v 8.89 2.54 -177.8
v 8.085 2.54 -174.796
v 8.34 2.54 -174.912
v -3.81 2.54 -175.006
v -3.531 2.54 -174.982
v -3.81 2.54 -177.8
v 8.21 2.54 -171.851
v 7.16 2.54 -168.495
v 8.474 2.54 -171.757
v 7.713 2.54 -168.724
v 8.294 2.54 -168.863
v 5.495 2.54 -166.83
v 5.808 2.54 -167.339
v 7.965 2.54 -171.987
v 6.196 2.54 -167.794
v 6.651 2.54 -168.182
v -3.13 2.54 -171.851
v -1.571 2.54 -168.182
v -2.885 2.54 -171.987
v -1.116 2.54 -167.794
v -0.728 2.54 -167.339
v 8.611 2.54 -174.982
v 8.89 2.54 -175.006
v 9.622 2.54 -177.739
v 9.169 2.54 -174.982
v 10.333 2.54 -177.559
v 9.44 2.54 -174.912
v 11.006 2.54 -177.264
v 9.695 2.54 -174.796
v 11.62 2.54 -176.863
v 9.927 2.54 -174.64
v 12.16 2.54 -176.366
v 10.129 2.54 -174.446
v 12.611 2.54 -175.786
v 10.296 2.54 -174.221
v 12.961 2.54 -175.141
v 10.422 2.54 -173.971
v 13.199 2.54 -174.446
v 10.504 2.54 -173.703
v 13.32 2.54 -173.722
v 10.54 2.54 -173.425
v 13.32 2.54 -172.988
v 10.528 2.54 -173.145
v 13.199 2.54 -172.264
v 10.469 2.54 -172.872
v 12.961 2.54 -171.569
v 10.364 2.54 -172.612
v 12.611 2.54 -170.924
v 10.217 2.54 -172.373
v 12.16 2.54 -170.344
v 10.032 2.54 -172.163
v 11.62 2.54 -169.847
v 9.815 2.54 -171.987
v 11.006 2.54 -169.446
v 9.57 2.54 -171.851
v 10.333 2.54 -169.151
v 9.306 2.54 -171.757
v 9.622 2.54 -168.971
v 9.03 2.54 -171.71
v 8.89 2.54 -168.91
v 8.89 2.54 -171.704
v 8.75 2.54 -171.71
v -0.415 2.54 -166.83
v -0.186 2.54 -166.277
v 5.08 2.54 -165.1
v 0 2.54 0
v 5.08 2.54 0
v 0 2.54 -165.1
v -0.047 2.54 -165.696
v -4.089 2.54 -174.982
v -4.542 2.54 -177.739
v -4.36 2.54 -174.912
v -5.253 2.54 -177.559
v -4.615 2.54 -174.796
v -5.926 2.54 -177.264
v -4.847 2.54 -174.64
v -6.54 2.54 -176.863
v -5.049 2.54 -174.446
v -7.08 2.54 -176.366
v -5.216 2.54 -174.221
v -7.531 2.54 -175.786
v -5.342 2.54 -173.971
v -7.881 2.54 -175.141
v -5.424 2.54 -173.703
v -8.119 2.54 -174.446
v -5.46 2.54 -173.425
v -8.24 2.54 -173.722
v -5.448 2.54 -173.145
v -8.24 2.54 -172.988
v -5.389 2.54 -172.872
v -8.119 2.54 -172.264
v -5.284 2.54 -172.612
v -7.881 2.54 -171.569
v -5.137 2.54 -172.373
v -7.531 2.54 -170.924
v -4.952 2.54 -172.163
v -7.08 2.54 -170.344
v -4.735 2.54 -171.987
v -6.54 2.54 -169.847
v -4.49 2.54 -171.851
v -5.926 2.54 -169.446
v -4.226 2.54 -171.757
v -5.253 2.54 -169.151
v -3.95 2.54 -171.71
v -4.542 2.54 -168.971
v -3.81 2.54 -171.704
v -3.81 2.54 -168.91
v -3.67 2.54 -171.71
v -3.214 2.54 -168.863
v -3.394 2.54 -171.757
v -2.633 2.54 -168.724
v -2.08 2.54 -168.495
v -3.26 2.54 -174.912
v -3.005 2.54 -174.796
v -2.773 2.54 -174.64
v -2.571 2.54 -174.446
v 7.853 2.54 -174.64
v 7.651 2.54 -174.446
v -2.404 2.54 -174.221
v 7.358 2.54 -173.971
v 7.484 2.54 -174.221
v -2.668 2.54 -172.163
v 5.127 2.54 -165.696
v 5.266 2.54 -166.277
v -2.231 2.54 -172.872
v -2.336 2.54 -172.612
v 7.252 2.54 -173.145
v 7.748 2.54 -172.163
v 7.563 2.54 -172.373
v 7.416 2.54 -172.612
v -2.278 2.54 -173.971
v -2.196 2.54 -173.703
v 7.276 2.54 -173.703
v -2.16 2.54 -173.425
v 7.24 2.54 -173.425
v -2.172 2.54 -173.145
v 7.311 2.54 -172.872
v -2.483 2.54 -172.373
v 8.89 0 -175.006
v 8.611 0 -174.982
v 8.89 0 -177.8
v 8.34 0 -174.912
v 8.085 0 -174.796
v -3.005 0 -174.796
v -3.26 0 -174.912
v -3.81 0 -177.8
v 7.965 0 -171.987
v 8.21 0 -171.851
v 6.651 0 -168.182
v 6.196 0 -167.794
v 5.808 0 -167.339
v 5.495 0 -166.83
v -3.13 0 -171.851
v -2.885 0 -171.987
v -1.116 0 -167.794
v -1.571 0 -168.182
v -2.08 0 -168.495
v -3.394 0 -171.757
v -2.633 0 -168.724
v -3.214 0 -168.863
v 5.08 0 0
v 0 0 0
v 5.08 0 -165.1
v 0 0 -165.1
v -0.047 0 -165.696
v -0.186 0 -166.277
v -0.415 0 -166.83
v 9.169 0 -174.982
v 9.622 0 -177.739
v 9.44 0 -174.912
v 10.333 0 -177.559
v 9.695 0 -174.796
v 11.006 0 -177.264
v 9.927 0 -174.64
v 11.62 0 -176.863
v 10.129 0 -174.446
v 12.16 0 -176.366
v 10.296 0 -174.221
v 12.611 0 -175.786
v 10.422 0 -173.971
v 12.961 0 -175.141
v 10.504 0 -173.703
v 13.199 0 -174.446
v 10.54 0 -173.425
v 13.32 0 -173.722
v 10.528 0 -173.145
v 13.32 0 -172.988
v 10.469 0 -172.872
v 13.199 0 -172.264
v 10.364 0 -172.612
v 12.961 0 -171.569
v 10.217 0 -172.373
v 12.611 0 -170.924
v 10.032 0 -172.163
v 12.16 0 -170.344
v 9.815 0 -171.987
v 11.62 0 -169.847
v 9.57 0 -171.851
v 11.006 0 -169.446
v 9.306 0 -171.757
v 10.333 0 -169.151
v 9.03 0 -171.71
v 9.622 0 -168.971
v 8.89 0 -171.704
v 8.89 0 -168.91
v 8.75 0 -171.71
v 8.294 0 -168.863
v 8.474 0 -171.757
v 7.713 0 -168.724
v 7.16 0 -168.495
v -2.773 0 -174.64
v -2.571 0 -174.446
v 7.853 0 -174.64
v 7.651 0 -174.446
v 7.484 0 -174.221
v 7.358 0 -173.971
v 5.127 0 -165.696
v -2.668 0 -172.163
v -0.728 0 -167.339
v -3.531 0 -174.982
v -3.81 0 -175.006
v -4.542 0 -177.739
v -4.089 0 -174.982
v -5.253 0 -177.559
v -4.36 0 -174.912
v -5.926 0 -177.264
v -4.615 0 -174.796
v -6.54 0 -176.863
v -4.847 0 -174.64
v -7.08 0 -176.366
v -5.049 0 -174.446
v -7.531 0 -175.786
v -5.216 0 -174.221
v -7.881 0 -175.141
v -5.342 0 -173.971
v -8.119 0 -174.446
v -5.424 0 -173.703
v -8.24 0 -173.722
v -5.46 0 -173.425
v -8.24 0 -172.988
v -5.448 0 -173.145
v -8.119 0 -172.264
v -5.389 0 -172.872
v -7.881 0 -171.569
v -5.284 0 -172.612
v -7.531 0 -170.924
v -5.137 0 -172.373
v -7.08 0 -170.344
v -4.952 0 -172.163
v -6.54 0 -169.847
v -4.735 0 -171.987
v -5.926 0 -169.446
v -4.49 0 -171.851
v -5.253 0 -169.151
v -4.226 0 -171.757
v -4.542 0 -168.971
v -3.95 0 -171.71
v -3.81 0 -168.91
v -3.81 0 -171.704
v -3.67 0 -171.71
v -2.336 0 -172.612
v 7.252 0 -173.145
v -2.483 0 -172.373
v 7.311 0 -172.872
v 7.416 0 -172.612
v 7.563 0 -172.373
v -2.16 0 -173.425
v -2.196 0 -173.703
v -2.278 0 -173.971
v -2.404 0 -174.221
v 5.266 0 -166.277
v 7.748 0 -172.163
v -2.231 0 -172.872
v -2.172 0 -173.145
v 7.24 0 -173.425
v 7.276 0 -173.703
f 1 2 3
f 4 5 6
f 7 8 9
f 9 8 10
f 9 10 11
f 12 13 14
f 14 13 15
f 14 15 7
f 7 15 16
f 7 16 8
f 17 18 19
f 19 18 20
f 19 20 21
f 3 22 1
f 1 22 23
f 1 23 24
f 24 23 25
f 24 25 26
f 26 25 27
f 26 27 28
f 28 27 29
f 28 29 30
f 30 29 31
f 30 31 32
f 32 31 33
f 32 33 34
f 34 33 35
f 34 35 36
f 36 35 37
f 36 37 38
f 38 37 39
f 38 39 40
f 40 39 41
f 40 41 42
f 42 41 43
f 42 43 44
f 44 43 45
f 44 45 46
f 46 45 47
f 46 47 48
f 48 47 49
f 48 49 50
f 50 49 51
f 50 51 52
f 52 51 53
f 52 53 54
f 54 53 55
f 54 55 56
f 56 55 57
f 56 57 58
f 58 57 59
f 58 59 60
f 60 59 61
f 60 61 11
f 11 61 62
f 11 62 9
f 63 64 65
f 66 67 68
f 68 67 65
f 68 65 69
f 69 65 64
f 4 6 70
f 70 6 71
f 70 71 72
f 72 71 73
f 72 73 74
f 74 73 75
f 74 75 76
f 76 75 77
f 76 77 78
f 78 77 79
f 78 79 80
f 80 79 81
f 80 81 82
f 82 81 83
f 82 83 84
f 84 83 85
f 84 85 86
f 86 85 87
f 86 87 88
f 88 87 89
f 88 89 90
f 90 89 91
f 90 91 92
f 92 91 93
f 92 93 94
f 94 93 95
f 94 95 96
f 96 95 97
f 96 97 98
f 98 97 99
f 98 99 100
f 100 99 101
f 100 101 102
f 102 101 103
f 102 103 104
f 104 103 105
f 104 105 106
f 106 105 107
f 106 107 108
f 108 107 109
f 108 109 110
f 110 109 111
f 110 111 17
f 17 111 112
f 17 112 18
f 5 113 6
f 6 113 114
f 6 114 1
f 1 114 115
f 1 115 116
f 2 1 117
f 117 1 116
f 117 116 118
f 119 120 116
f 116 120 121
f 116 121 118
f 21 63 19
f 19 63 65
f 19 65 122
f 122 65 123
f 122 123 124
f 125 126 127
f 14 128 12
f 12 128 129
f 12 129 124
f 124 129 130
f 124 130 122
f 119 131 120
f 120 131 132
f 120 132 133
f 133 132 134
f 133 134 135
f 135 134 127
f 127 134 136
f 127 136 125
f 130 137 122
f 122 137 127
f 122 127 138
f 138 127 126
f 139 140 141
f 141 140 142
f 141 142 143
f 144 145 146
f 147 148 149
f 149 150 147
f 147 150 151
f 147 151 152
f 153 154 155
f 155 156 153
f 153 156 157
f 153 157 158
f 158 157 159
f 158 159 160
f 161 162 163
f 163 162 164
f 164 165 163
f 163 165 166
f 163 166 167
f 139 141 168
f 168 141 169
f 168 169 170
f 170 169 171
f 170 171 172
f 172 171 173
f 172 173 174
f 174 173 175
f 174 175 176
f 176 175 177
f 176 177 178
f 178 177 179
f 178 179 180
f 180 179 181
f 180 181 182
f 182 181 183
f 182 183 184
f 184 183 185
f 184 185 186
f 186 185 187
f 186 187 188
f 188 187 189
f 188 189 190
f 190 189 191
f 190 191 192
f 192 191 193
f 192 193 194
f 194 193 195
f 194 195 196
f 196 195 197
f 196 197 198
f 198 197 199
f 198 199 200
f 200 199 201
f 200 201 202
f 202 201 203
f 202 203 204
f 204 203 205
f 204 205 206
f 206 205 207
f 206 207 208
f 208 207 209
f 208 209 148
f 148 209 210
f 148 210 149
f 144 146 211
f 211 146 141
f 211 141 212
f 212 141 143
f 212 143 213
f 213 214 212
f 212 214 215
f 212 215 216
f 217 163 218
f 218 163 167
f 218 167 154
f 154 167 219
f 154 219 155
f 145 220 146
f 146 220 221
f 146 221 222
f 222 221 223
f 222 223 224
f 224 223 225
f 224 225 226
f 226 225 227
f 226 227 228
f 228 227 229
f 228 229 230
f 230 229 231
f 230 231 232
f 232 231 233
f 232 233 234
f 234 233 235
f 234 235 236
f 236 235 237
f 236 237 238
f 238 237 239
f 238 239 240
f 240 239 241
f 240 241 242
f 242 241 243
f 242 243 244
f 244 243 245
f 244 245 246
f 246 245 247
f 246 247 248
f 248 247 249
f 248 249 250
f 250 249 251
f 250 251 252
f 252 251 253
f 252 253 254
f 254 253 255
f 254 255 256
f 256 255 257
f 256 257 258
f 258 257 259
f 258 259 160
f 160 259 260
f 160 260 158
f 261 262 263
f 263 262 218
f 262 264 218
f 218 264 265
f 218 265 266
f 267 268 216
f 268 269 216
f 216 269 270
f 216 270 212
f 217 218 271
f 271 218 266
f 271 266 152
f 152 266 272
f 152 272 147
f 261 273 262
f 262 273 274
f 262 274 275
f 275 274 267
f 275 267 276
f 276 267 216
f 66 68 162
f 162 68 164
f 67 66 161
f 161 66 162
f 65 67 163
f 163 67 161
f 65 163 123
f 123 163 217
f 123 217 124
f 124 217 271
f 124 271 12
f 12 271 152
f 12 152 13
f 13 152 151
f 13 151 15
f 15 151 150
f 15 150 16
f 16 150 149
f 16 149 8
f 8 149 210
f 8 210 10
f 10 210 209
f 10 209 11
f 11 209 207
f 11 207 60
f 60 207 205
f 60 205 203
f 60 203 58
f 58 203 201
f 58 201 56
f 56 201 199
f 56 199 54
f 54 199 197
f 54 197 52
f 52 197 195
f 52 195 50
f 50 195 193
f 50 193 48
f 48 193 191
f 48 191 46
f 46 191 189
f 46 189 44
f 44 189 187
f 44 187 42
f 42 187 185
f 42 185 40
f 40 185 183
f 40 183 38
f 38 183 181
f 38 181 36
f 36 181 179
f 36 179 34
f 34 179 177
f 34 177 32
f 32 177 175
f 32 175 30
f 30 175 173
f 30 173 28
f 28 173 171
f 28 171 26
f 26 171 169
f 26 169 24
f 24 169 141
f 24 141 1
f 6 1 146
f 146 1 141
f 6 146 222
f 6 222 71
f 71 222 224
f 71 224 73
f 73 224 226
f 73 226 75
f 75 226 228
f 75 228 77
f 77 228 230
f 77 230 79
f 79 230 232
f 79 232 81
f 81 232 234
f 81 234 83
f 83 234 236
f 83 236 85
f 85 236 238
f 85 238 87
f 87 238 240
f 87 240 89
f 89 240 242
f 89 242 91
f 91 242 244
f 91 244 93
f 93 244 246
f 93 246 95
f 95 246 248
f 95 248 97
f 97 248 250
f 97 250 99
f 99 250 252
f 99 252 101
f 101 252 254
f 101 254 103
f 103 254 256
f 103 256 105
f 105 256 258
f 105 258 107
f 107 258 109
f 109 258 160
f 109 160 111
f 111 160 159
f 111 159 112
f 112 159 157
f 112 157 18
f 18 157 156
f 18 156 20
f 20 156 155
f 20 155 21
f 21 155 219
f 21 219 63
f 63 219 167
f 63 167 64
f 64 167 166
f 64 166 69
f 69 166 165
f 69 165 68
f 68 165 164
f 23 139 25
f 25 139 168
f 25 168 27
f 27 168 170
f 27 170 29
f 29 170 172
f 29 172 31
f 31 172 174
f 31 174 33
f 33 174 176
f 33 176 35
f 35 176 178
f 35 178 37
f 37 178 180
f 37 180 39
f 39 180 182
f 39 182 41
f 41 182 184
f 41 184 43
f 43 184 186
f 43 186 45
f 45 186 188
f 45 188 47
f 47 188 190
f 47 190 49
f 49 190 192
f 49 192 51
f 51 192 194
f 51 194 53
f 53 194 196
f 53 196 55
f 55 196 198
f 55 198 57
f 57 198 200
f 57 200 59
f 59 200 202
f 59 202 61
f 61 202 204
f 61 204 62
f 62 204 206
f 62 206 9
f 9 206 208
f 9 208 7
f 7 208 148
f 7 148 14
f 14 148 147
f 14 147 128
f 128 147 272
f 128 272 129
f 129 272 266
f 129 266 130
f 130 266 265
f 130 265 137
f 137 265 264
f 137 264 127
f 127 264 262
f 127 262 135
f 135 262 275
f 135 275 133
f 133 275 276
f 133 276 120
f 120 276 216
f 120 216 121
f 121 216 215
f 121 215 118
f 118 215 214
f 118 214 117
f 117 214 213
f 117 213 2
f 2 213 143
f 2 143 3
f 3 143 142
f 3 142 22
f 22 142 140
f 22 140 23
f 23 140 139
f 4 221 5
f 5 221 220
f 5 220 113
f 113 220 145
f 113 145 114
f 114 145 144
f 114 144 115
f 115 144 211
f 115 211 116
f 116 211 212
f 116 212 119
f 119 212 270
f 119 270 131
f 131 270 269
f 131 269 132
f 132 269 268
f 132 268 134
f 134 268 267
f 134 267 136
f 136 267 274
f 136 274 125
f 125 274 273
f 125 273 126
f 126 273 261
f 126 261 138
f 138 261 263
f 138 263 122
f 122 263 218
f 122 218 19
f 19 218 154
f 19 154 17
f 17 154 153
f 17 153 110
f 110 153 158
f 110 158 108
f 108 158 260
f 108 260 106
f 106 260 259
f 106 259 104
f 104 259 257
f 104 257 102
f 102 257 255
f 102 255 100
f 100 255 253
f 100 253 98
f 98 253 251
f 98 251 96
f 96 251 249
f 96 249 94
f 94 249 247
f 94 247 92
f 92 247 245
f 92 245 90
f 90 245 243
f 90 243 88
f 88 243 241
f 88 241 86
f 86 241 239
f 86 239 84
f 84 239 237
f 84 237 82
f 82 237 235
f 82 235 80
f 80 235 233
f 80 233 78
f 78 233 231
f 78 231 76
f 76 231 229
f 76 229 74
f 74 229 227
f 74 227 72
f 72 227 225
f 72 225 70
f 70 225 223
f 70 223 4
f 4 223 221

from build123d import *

# Parameters (mm, degrees)
SKETCH1_R           = 1.651
BOSS_EXTRUDE1_DEPTH = 2.54


with BuildPart() as part:
    # Sketch1 → Boss-Extrude1 (new body)
    with BuildSketch(Plane(origin=(0, 0, 0), x_dir=(1, 0, 0), z_dir=(0, 1, 0))):
        with BuildLine():
            Line((0, 0), (5.08, 0))
            Line((5.08, 0), (5.08, 165.1))
            ThreePointArc((5.08, 165.1), (6.195923164, 167.794076836), (8.89, 168.91))
            ThreePointArc((8.89, 168.91), (13.335, 173.355), (8.89, 177.8))
            Line((8.89, 177.8), (-3.81, 177.8))
            ThreePointArc((-3.81, 177.8), (-8.255, 173.355), (-3.81, 168.91))
            ThreePointArc((-3.81, 168.91), (-1.115923164, 167.794076836), (0, 165.1))
            Line((0, 165.1), (0, 0))
        make_face()
        with Locations((-3.81, 173.355)):
            Circle(SKETCH1_R, mode=Mode.SUBTRACT)
        with Locations((8.89, 173.355)):
            Circle(SKETCH1_R, mode=Mode.SUBTRACT)
    extrude(amount=BOSS_EXTRUDE1_DEPTH)


solid = part.part
